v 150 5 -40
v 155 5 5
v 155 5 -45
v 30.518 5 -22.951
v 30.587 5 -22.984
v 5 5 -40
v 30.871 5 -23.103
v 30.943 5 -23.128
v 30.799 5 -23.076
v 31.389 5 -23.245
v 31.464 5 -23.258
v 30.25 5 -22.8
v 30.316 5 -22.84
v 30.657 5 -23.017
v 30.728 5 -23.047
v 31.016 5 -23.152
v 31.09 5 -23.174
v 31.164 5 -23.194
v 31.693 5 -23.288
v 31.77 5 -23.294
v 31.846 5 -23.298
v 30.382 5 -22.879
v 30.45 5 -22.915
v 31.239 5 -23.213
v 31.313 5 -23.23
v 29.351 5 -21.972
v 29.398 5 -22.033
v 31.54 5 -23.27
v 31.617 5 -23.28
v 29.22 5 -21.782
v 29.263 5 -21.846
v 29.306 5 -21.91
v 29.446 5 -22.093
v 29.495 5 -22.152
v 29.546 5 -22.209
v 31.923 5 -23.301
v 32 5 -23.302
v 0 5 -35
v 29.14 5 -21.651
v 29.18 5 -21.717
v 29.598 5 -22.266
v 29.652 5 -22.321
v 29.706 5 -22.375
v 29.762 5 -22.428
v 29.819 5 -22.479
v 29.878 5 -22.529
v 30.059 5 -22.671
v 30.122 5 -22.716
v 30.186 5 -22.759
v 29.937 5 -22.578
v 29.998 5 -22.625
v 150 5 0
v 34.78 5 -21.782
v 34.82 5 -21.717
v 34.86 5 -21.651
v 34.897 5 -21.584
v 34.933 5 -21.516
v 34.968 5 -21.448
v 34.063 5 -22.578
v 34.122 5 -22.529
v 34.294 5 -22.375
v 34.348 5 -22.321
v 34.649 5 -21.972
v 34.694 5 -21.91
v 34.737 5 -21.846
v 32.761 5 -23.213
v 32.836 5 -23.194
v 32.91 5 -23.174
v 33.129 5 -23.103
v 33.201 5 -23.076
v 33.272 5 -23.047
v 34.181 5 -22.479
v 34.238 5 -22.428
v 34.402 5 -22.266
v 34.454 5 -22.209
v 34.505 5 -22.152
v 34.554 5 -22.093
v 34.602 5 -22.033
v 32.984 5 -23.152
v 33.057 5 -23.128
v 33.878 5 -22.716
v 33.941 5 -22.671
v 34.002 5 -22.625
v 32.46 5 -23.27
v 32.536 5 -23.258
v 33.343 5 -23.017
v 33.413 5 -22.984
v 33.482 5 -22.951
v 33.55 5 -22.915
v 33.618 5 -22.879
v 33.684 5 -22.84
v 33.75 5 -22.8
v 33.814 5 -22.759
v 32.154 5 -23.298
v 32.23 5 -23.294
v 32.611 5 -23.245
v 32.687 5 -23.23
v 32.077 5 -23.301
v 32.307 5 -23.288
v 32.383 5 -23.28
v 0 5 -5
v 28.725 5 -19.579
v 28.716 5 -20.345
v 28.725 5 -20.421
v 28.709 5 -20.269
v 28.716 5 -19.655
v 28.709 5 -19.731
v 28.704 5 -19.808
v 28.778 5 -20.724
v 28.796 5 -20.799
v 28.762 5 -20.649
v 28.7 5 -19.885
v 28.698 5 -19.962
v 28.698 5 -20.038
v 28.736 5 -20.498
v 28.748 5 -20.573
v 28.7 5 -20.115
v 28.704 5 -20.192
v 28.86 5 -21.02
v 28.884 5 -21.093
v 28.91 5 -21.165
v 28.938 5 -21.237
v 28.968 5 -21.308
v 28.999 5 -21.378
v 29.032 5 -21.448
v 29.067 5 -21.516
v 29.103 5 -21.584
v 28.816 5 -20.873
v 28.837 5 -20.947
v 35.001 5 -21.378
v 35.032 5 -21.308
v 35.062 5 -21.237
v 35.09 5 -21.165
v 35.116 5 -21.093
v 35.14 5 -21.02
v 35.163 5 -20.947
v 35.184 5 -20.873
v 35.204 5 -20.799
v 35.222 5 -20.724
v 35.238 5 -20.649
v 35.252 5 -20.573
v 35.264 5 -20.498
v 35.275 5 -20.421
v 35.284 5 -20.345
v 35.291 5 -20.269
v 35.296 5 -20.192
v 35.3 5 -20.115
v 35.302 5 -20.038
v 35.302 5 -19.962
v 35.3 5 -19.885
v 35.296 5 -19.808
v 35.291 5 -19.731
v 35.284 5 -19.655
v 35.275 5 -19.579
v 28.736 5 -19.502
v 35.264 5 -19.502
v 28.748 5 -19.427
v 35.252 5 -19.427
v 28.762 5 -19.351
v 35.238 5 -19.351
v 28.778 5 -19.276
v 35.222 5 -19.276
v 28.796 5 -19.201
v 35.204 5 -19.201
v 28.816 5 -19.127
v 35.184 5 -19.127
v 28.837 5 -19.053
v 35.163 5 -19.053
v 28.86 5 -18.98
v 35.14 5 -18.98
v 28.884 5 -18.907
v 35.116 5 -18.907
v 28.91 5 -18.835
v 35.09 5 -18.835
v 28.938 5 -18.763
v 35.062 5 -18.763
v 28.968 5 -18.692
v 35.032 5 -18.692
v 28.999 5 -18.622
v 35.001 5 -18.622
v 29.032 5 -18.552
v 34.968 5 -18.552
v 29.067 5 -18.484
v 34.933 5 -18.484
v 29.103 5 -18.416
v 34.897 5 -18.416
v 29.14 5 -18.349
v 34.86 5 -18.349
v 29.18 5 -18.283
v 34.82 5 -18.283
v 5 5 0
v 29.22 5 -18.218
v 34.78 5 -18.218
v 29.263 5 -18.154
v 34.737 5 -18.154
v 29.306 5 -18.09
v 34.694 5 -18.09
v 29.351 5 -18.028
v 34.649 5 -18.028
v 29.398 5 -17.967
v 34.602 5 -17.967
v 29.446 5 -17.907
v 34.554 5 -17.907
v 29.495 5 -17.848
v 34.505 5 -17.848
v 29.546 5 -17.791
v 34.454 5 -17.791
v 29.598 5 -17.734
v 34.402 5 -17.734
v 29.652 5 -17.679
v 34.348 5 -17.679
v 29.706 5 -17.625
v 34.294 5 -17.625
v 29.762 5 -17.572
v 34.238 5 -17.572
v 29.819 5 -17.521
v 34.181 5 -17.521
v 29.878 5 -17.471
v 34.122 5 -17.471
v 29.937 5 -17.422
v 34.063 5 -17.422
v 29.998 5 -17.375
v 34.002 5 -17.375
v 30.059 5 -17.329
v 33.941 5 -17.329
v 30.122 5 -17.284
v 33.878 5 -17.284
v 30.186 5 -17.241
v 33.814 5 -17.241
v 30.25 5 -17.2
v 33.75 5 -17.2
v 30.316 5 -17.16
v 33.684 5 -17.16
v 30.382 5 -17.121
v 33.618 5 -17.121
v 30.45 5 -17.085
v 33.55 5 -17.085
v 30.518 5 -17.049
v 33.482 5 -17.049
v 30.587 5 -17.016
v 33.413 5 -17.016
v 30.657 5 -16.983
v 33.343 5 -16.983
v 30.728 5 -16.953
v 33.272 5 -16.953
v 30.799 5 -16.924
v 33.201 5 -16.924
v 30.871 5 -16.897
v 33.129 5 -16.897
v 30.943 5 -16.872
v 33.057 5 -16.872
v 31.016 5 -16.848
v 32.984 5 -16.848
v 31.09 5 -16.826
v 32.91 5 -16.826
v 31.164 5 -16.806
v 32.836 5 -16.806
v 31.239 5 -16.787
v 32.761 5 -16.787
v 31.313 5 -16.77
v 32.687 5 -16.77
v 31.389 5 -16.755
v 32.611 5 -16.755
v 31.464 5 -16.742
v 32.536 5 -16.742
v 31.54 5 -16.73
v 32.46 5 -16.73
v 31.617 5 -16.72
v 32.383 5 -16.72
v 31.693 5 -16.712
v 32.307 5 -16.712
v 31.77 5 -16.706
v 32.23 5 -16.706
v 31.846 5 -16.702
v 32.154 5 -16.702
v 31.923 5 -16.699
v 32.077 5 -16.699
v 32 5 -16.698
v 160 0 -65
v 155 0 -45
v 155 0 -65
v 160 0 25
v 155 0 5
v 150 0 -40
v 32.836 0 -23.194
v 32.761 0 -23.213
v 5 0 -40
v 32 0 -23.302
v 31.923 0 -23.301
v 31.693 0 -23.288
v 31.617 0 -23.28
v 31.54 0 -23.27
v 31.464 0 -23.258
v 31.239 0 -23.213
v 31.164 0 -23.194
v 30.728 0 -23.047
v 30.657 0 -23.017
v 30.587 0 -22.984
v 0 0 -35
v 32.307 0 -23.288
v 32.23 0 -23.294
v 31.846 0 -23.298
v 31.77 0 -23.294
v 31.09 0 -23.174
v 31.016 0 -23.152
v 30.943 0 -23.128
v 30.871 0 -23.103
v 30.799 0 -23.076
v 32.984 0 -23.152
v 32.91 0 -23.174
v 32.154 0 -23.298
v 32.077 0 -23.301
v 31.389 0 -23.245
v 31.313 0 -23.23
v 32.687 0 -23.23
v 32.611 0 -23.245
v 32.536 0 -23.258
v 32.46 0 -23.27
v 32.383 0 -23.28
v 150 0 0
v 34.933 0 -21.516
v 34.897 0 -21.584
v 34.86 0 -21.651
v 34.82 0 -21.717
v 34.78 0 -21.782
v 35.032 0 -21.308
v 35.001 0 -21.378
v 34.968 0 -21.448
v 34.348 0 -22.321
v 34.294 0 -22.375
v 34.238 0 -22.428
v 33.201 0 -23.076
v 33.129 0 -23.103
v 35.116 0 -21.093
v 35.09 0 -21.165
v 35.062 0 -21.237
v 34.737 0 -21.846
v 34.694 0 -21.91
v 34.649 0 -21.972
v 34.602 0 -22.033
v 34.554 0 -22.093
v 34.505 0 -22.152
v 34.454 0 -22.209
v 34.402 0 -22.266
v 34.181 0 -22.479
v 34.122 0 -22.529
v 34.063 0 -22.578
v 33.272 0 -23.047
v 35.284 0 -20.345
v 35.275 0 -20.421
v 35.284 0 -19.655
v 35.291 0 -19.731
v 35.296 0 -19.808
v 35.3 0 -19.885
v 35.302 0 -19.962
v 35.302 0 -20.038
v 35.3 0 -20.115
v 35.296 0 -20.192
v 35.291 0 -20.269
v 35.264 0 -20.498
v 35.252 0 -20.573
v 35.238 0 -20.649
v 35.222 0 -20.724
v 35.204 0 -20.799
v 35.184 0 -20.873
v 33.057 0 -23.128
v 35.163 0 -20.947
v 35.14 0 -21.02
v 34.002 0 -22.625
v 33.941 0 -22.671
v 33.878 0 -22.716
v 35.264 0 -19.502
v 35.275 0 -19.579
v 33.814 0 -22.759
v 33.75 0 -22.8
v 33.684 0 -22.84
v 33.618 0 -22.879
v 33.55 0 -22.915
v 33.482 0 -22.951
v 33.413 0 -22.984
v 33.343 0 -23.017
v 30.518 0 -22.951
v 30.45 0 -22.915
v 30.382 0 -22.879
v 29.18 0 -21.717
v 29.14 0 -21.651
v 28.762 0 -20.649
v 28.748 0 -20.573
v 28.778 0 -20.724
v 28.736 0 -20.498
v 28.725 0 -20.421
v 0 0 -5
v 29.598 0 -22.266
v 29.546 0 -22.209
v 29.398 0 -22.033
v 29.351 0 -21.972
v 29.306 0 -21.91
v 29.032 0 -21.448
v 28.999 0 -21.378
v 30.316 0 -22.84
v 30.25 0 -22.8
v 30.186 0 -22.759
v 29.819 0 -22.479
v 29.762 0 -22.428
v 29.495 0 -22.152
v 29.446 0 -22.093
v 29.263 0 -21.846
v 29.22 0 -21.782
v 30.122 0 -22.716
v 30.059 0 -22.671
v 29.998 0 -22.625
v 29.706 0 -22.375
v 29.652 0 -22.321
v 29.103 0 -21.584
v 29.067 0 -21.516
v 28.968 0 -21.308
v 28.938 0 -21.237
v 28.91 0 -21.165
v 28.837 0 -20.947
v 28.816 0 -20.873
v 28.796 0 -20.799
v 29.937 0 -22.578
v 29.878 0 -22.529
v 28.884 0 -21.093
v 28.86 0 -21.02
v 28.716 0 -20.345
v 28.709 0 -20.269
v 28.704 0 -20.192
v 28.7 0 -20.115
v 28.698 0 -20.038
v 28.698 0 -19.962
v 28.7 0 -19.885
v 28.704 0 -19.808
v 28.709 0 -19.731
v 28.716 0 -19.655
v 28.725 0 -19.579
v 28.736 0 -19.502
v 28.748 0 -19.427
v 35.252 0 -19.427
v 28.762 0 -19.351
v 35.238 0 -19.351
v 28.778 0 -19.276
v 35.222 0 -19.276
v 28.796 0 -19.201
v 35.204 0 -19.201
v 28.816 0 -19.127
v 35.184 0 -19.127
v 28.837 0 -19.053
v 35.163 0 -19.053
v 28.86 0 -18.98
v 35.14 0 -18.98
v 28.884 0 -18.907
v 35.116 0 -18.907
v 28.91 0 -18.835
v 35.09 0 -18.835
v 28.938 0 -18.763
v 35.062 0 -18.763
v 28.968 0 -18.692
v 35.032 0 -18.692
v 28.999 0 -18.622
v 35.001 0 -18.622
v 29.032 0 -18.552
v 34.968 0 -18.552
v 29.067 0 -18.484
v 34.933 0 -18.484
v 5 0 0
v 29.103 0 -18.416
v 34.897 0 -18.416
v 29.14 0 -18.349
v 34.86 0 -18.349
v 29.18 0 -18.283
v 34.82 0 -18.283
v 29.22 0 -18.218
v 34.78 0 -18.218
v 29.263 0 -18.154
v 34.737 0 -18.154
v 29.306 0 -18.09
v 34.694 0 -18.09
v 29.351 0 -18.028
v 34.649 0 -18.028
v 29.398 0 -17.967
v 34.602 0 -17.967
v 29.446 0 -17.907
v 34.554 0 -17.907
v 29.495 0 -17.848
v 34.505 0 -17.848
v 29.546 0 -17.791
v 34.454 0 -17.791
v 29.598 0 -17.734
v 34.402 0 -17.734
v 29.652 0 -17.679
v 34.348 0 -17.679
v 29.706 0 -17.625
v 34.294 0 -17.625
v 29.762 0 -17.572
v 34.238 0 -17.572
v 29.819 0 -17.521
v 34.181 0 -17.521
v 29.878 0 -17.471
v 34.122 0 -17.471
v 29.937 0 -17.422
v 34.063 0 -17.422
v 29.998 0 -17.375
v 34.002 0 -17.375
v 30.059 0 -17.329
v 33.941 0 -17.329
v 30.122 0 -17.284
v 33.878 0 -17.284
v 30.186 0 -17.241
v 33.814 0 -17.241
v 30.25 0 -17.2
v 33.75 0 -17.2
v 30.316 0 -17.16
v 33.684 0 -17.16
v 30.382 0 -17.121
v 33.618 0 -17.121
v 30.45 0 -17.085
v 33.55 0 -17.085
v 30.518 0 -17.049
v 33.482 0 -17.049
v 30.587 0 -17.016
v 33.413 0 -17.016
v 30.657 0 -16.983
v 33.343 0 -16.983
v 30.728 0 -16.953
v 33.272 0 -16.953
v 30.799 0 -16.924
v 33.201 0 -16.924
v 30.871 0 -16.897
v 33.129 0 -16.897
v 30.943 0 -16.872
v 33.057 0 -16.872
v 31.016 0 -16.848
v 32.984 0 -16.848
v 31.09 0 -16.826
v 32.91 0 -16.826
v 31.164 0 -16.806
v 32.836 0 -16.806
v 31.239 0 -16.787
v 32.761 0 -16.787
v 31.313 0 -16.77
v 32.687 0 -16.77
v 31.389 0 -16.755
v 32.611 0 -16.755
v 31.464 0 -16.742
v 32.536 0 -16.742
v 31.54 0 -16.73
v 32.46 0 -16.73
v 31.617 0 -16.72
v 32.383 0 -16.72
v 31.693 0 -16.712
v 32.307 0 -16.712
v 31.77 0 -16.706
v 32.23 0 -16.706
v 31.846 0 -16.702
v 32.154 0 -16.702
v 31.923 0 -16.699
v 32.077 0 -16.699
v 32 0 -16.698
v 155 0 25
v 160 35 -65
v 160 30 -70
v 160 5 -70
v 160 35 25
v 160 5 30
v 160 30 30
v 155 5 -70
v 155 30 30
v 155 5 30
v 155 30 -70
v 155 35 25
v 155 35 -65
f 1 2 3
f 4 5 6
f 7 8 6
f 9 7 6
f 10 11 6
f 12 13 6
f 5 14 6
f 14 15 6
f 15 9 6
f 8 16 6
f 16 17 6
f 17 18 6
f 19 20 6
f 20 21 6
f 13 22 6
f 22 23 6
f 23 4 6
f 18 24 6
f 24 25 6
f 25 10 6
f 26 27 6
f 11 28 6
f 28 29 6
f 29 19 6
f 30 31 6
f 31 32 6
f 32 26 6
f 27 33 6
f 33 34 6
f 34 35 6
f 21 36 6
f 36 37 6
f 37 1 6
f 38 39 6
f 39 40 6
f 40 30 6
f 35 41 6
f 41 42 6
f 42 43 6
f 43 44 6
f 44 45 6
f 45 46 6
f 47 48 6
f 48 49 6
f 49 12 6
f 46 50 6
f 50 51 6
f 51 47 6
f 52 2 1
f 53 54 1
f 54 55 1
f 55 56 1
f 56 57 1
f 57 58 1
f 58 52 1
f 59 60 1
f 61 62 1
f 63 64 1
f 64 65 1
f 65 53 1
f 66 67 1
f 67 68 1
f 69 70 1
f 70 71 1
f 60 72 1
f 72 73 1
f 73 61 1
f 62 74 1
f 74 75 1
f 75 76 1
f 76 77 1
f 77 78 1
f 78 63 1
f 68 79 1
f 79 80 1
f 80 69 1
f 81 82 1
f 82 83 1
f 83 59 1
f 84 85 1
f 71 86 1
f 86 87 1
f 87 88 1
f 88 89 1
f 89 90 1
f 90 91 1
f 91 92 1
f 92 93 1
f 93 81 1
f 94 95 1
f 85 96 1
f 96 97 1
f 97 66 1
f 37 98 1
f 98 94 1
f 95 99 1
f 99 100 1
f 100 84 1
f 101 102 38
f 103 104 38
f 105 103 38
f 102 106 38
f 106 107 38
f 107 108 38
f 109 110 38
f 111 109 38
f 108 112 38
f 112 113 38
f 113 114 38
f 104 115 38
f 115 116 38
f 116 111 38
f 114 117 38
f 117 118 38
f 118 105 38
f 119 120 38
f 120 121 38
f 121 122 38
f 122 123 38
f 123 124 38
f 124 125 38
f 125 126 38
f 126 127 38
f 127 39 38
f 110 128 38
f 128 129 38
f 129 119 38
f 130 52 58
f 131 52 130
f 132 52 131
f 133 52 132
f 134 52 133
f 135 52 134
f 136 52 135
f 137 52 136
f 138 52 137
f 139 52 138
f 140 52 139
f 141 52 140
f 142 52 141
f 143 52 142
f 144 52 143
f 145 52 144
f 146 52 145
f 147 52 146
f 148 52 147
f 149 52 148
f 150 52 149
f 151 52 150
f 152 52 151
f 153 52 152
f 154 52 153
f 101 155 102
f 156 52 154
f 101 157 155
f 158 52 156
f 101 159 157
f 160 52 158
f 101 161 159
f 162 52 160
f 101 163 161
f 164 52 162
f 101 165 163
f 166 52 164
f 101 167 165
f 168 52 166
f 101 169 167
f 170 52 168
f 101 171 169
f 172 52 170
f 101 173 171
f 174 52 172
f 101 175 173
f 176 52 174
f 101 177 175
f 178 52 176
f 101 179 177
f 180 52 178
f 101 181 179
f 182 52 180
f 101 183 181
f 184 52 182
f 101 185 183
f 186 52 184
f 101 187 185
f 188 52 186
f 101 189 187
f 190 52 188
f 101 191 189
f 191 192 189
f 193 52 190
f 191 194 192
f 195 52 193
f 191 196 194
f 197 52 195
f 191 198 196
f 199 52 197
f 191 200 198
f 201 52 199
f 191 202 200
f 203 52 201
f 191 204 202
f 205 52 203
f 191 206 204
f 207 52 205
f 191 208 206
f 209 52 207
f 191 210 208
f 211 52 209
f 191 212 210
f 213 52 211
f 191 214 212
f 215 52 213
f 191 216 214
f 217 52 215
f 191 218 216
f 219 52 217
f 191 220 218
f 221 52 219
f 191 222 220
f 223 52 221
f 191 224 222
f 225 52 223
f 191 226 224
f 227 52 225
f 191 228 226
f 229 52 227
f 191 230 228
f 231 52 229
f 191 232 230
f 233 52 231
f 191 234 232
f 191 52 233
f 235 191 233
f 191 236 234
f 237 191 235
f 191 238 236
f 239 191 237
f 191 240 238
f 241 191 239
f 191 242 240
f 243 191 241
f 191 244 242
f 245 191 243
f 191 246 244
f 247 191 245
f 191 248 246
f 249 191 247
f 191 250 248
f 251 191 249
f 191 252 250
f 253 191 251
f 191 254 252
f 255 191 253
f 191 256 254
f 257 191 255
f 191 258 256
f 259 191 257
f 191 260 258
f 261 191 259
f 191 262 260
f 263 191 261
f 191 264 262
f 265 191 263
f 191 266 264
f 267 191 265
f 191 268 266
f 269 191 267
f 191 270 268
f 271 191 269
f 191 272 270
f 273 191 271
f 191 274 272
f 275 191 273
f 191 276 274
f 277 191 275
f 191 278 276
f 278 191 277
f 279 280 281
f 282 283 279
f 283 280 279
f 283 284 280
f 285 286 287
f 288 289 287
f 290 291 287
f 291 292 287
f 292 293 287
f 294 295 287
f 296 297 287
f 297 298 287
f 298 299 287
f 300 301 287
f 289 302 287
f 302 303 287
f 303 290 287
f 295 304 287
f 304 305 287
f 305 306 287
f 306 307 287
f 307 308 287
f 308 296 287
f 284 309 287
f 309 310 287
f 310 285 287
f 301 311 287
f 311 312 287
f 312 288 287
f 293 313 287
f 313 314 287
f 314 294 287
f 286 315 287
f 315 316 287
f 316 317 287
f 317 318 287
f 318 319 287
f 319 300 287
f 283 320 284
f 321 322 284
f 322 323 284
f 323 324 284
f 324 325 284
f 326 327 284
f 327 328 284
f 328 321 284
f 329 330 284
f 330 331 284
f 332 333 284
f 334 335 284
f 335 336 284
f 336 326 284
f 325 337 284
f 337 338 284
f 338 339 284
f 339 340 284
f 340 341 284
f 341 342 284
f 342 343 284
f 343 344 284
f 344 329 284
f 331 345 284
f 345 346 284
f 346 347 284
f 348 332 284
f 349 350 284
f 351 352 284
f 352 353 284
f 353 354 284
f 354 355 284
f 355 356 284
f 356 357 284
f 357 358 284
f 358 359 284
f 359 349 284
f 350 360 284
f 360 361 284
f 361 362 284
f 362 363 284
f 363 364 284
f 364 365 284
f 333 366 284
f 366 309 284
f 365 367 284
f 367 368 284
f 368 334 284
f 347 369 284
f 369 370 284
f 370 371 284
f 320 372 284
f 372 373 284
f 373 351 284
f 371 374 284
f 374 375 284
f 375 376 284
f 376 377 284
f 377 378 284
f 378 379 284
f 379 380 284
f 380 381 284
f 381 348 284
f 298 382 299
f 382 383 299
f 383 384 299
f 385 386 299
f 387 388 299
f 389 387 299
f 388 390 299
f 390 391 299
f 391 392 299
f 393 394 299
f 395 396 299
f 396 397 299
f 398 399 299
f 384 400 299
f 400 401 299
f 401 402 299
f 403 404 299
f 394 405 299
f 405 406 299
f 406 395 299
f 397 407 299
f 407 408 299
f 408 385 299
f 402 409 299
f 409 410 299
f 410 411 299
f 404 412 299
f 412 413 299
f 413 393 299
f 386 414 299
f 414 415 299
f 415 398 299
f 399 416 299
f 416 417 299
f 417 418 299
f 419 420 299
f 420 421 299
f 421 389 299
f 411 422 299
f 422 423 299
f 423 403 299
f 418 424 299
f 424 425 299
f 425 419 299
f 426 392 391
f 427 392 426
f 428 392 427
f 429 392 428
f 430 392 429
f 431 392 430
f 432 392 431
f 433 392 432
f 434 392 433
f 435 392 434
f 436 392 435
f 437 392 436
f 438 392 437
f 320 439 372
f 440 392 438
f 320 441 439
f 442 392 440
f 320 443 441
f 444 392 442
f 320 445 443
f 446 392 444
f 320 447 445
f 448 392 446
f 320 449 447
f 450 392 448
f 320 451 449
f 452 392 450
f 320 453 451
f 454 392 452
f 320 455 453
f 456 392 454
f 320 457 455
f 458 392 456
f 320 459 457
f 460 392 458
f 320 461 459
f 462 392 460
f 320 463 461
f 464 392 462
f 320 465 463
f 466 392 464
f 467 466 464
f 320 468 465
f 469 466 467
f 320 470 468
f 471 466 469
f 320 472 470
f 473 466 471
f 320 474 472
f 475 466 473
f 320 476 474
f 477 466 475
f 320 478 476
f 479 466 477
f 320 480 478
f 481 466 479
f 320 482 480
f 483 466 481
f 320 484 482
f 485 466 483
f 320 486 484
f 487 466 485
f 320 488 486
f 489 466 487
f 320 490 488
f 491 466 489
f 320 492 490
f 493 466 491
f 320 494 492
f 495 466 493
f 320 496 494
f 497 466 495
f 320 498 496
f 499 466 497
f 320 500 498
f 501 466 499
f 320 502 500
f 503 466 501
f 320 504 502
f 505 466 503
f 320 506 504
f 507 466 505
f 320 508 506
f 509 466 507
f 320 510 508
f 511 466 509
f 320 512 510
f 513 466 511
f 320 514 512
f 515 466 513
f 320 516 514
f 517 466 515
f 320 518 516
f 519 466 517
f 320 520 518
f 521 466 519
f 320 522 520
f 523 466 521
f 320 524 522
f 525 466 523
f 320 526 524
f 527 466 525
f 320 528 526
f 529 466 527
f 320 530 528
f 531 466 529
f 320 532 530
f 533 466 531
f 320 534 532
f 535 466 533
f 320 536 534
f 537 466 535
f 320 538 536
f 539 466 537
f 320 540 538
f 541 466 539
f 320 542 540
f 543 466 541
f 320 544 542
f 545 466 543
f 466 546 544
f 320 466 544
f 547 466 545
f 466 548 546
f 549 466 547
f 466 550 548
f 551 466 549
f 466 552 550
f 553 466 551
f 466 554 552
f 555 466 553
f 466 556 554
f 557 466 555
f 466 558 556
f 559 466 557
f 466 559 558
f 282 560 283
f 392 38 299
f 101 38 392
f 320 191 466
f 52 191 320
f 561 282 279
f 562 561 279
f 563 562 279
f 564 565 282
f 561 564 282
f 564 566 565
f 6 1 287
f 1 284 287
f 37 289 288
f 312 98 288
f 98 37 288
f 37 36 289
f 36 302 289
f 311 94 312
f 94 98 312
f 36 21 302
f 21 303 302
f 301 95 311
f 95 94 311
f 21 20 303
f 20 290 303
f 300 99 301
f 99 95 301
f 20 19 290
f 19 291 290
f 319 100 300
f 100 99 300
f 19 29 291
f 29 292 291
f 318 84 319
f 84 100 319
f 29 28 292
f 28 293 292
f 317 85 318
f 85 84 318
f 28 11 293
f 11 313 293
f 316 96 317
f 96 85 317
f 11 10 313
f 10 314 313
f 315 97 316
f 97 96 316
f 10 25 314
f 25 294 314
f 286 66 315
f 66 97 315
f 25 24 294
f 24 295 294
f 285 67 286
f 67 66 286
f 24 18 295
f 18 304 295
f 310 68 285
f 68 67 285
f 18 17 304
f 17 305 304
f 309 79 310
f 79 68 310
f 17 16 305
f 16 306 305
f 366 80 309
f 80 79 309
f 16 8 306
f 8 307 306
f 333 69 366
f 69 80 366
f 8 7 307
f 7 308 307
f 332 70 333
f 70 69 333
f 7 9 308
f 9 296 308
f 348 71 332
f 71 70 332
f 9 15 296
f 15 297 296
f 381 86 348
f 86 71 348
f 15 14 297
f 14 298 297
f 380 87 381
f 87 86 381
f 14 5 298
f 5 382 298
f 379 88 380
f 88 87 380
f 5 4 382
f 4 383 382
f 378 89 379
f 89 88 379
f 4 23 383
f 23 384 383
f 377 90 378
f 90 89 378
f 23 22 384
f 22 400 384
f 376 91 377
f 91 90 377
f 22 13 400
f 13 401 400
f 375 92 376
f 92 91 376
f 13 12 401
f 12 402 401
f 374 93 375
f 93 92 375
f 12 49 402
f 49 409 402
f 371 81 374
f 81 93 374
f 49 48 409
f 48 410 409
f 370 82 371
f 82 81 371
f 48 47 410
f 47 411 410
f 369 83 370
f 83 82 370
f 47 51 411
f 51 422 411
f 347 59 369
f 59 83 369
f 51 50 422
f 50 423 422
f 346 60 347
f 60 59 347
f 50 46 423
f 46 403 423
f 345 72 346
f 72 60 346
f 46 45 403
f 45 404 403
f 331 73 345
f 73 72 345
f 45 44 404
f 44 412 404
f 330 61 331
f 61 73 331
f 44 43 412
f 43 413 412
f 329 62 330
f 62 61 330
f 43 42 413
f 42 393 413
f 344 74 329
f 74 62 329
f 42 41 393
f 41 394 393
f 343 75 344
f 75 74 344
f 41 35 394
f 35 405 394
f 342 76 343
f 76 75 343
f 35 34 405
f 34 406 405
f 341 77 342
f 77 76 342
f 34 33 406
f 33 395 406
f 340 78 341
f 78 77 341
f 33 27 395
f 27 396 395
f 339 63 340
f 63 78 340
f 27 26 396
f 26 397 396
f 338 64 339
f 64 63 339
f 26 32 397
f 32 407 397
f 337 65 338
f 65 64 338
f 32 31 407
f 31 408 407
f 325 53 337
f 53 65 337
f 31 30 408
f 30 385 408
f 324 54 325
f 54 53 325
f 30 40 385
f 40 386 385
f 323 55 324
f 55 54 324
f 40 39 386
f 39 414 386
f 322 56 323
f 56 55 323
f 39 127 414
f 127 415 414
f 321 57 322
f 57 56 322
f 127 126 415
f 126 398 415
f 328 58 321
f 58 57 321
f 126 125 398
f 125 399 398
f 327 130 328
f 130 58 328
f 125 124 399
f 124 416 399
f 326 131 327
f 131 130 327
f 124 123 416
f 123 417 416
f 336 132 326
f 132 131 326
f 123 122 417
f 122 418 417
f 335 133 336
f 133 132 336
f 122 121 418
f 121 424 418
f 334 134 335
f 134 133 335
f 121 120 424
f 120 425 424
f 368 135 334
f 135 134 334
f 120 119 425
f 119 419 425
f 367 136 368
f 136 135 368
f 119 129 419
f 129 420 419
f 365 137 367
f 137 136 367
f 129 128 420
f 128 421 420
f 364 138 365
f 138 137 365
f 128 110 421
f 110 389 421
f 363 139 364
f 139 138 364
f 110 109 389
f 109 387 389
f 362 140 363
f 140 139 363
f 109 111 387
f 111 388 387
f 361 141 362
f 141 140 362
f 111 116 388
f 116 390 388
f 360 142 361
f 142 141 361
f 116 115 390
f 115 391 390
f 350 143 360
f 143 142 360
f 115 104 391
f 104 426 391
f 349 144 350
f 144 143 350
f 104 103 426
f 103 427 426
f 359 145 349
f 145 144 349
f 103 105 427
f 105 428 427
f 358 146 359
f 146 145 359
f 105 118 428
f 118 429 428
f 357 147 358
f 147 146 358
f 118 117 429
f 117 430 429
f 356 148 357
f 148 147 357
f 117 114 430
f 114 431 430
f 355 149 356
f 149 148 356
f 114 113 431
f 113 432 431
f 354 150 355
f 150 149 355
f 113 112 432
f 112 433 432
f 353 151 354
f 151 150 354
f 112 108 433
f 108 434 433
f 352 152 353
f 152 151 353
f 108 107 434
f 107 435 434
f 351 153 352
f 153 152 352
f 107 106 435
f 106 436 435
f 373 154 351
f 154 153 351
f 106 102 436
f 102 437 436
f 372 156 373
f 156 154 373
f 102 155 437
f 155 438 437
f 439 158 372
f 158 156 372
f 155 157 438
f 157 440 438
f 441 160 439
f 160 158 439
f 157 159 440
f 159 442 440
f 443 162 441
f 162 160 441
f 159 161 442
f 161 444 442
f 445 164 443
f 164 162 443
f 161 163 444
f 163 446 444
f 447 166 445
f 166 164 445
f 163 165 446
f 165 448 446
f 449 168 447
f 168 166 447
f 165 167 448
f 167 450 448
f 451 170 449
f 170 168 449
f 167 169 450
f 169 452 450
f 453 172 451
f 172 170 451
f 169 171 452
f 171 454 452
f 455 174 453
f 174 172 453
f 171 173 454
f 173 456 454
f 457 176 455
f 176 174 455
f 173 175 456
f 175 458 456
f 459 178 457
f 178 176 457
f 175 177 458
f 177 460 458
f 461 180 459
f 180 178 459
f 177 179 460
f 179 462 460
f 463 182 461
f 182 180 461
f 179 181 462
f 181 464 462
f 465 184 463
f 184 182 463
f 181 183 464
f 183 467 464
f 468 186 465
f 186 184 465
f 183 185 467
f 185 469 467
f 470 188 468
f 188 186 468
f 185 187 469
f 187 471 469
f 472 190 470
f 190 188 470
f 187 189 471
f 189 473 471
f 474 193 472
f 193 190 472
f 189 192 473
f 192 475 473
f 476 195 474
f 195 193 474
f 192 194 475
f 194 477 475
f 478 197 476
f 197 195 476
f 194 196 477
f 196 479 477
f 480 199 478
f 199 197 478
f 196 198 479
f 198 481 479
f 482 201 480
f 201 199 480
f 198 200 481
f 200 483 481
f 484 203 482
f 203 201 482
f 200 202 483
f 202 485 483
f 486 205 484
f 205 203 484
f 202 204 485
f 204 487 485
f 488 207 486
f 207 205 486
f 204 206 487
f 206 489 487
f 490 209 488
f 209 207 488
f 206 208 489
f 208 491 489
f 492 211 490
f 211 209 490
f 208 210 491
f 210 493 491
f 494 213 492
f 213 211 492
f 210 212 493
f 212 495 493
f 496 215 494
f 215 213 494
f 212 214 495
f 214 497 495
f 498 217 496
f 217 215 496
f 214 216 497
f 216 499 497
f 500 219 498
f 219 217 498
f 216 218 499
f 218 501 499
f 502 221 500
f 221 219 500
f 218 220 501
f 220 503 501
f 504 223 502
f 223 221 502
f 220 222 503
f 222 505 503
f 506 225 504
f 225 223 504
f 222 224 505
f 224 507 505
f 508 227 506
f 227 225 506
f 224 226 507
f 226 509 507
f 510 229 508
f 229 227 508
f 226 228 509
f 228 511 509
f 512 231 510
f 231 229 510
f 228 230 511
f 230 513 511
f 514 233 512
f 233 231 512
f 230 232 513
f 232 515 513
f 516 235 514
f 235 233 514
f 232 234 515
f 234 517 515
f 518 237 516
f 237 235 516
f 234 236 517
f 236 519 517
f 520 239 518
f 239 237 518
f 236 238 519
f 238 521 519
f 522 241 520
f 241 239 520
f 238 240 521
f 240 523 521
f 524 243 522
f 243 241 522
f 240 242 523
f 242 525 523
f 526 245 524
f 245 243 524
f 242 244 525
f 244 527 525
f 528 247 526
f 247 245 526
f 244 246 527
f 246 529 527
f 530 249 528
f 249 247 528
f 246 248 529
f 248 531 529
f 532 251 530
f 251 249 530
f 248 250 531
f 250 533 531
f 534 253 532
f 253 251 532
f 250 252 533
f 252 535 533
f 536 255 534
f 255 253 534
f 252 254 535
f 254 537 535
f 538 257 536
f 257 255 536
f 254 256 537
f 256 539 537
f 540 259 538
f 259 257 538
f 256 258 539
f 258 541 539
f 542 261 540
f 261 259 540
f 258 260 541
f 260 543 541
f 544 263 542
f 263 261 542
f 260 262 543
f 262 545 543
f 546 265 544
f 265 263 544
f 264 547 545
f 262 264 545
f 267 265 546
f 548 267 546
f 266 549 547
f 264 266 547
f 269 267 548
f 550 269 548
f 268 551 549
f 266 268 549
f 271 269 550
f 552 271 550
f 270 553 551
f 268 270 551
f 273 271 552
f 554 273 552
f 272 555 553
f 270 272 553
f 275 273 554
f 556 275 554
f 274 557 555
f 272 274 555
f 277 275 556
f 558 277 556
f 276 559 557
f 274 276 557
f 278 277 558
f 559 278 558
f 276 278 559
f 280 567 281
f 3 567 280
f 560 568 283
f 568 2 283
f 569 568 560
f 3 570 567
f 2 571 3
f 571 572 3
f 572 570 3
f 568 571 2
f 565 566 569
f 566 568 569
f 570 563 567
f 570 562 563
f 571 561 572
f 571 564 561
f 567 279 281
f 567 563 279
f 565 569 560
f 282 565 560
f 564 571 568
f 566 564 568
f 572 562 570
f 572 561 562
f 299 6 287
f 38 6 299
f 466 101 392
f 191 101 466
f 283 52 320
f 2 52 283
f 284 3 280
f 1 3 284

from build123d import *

# Parameters (mm, degrees)
SKETCH1_W           = 160
SKETCH1_H           = 40
SKETCH1_R           = 3.302
BOSS_EXTRUDE1_DEPTH = 5
SKETCH2_W           = 5
SKETCH2_H           = 100
BOSS_EXTRUDE2_DEPTH = 35
CHAMFER1_SIZE       = 5


with BuildPart() as part:
    # Sketch1 → Boss-Extrude1 (new body)
    with BuildSketch(Plane(origin=(0, 0, 0), x_dir=(1, 0, 0), z_dir=(0, 1, 0))):
        with Locations((80, 20)):
            Rectangle(SKETCH1_W, SKETCH1_H)
        with Locations(Location((32, 20, 0), (0, 0, 270))):
            Circle(SKETCH1_R, mode=Mode.SUBTRACT)
    extrude(amount=BOSS_EXTRUDE1_DEPTH)

    # Sketch2 → Boss-Extrude2 (add)
    with BuildSketch(Plane.XZ):
        with Locations((157.5, -20)):
            Rectangle(SKETCH2_W, SKETCH2_H)
    extrude(amount=-BOSS_EXTRUDE2_DEPTH)

    # Chamfer1
    chamfer1_edges = [part.edges().sort_by_distance(p)[0] for p in [
        (155, 2.5, -40),
        (157.5, 0, 30),
        (157.5, 0, -70),
        (155, 2.5, 0),
        (157.5, 35, 30),
        (157.5, 35, -70),
        (0, 2.5, -40),
        (0, 2.5, 0),
    ]]
    chamfer(chamfer1_edges, length=CHAMFER1_SIZE)


solid = part.part
